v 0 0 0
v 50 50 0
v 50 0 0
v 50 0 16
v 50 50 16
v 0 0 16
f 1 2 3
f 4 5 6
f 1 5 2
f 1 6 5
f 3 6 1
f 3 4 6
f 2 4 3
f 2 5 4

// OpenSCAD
$fa = 1;
$fs = 0.1;

SIZE = 50;
HEIGHT = 16;

linear_extrude(HEIGHT)
difference() {
  square(SIZE);

  rotate(45)
  square(SIZE/sqrt(.5));
}
